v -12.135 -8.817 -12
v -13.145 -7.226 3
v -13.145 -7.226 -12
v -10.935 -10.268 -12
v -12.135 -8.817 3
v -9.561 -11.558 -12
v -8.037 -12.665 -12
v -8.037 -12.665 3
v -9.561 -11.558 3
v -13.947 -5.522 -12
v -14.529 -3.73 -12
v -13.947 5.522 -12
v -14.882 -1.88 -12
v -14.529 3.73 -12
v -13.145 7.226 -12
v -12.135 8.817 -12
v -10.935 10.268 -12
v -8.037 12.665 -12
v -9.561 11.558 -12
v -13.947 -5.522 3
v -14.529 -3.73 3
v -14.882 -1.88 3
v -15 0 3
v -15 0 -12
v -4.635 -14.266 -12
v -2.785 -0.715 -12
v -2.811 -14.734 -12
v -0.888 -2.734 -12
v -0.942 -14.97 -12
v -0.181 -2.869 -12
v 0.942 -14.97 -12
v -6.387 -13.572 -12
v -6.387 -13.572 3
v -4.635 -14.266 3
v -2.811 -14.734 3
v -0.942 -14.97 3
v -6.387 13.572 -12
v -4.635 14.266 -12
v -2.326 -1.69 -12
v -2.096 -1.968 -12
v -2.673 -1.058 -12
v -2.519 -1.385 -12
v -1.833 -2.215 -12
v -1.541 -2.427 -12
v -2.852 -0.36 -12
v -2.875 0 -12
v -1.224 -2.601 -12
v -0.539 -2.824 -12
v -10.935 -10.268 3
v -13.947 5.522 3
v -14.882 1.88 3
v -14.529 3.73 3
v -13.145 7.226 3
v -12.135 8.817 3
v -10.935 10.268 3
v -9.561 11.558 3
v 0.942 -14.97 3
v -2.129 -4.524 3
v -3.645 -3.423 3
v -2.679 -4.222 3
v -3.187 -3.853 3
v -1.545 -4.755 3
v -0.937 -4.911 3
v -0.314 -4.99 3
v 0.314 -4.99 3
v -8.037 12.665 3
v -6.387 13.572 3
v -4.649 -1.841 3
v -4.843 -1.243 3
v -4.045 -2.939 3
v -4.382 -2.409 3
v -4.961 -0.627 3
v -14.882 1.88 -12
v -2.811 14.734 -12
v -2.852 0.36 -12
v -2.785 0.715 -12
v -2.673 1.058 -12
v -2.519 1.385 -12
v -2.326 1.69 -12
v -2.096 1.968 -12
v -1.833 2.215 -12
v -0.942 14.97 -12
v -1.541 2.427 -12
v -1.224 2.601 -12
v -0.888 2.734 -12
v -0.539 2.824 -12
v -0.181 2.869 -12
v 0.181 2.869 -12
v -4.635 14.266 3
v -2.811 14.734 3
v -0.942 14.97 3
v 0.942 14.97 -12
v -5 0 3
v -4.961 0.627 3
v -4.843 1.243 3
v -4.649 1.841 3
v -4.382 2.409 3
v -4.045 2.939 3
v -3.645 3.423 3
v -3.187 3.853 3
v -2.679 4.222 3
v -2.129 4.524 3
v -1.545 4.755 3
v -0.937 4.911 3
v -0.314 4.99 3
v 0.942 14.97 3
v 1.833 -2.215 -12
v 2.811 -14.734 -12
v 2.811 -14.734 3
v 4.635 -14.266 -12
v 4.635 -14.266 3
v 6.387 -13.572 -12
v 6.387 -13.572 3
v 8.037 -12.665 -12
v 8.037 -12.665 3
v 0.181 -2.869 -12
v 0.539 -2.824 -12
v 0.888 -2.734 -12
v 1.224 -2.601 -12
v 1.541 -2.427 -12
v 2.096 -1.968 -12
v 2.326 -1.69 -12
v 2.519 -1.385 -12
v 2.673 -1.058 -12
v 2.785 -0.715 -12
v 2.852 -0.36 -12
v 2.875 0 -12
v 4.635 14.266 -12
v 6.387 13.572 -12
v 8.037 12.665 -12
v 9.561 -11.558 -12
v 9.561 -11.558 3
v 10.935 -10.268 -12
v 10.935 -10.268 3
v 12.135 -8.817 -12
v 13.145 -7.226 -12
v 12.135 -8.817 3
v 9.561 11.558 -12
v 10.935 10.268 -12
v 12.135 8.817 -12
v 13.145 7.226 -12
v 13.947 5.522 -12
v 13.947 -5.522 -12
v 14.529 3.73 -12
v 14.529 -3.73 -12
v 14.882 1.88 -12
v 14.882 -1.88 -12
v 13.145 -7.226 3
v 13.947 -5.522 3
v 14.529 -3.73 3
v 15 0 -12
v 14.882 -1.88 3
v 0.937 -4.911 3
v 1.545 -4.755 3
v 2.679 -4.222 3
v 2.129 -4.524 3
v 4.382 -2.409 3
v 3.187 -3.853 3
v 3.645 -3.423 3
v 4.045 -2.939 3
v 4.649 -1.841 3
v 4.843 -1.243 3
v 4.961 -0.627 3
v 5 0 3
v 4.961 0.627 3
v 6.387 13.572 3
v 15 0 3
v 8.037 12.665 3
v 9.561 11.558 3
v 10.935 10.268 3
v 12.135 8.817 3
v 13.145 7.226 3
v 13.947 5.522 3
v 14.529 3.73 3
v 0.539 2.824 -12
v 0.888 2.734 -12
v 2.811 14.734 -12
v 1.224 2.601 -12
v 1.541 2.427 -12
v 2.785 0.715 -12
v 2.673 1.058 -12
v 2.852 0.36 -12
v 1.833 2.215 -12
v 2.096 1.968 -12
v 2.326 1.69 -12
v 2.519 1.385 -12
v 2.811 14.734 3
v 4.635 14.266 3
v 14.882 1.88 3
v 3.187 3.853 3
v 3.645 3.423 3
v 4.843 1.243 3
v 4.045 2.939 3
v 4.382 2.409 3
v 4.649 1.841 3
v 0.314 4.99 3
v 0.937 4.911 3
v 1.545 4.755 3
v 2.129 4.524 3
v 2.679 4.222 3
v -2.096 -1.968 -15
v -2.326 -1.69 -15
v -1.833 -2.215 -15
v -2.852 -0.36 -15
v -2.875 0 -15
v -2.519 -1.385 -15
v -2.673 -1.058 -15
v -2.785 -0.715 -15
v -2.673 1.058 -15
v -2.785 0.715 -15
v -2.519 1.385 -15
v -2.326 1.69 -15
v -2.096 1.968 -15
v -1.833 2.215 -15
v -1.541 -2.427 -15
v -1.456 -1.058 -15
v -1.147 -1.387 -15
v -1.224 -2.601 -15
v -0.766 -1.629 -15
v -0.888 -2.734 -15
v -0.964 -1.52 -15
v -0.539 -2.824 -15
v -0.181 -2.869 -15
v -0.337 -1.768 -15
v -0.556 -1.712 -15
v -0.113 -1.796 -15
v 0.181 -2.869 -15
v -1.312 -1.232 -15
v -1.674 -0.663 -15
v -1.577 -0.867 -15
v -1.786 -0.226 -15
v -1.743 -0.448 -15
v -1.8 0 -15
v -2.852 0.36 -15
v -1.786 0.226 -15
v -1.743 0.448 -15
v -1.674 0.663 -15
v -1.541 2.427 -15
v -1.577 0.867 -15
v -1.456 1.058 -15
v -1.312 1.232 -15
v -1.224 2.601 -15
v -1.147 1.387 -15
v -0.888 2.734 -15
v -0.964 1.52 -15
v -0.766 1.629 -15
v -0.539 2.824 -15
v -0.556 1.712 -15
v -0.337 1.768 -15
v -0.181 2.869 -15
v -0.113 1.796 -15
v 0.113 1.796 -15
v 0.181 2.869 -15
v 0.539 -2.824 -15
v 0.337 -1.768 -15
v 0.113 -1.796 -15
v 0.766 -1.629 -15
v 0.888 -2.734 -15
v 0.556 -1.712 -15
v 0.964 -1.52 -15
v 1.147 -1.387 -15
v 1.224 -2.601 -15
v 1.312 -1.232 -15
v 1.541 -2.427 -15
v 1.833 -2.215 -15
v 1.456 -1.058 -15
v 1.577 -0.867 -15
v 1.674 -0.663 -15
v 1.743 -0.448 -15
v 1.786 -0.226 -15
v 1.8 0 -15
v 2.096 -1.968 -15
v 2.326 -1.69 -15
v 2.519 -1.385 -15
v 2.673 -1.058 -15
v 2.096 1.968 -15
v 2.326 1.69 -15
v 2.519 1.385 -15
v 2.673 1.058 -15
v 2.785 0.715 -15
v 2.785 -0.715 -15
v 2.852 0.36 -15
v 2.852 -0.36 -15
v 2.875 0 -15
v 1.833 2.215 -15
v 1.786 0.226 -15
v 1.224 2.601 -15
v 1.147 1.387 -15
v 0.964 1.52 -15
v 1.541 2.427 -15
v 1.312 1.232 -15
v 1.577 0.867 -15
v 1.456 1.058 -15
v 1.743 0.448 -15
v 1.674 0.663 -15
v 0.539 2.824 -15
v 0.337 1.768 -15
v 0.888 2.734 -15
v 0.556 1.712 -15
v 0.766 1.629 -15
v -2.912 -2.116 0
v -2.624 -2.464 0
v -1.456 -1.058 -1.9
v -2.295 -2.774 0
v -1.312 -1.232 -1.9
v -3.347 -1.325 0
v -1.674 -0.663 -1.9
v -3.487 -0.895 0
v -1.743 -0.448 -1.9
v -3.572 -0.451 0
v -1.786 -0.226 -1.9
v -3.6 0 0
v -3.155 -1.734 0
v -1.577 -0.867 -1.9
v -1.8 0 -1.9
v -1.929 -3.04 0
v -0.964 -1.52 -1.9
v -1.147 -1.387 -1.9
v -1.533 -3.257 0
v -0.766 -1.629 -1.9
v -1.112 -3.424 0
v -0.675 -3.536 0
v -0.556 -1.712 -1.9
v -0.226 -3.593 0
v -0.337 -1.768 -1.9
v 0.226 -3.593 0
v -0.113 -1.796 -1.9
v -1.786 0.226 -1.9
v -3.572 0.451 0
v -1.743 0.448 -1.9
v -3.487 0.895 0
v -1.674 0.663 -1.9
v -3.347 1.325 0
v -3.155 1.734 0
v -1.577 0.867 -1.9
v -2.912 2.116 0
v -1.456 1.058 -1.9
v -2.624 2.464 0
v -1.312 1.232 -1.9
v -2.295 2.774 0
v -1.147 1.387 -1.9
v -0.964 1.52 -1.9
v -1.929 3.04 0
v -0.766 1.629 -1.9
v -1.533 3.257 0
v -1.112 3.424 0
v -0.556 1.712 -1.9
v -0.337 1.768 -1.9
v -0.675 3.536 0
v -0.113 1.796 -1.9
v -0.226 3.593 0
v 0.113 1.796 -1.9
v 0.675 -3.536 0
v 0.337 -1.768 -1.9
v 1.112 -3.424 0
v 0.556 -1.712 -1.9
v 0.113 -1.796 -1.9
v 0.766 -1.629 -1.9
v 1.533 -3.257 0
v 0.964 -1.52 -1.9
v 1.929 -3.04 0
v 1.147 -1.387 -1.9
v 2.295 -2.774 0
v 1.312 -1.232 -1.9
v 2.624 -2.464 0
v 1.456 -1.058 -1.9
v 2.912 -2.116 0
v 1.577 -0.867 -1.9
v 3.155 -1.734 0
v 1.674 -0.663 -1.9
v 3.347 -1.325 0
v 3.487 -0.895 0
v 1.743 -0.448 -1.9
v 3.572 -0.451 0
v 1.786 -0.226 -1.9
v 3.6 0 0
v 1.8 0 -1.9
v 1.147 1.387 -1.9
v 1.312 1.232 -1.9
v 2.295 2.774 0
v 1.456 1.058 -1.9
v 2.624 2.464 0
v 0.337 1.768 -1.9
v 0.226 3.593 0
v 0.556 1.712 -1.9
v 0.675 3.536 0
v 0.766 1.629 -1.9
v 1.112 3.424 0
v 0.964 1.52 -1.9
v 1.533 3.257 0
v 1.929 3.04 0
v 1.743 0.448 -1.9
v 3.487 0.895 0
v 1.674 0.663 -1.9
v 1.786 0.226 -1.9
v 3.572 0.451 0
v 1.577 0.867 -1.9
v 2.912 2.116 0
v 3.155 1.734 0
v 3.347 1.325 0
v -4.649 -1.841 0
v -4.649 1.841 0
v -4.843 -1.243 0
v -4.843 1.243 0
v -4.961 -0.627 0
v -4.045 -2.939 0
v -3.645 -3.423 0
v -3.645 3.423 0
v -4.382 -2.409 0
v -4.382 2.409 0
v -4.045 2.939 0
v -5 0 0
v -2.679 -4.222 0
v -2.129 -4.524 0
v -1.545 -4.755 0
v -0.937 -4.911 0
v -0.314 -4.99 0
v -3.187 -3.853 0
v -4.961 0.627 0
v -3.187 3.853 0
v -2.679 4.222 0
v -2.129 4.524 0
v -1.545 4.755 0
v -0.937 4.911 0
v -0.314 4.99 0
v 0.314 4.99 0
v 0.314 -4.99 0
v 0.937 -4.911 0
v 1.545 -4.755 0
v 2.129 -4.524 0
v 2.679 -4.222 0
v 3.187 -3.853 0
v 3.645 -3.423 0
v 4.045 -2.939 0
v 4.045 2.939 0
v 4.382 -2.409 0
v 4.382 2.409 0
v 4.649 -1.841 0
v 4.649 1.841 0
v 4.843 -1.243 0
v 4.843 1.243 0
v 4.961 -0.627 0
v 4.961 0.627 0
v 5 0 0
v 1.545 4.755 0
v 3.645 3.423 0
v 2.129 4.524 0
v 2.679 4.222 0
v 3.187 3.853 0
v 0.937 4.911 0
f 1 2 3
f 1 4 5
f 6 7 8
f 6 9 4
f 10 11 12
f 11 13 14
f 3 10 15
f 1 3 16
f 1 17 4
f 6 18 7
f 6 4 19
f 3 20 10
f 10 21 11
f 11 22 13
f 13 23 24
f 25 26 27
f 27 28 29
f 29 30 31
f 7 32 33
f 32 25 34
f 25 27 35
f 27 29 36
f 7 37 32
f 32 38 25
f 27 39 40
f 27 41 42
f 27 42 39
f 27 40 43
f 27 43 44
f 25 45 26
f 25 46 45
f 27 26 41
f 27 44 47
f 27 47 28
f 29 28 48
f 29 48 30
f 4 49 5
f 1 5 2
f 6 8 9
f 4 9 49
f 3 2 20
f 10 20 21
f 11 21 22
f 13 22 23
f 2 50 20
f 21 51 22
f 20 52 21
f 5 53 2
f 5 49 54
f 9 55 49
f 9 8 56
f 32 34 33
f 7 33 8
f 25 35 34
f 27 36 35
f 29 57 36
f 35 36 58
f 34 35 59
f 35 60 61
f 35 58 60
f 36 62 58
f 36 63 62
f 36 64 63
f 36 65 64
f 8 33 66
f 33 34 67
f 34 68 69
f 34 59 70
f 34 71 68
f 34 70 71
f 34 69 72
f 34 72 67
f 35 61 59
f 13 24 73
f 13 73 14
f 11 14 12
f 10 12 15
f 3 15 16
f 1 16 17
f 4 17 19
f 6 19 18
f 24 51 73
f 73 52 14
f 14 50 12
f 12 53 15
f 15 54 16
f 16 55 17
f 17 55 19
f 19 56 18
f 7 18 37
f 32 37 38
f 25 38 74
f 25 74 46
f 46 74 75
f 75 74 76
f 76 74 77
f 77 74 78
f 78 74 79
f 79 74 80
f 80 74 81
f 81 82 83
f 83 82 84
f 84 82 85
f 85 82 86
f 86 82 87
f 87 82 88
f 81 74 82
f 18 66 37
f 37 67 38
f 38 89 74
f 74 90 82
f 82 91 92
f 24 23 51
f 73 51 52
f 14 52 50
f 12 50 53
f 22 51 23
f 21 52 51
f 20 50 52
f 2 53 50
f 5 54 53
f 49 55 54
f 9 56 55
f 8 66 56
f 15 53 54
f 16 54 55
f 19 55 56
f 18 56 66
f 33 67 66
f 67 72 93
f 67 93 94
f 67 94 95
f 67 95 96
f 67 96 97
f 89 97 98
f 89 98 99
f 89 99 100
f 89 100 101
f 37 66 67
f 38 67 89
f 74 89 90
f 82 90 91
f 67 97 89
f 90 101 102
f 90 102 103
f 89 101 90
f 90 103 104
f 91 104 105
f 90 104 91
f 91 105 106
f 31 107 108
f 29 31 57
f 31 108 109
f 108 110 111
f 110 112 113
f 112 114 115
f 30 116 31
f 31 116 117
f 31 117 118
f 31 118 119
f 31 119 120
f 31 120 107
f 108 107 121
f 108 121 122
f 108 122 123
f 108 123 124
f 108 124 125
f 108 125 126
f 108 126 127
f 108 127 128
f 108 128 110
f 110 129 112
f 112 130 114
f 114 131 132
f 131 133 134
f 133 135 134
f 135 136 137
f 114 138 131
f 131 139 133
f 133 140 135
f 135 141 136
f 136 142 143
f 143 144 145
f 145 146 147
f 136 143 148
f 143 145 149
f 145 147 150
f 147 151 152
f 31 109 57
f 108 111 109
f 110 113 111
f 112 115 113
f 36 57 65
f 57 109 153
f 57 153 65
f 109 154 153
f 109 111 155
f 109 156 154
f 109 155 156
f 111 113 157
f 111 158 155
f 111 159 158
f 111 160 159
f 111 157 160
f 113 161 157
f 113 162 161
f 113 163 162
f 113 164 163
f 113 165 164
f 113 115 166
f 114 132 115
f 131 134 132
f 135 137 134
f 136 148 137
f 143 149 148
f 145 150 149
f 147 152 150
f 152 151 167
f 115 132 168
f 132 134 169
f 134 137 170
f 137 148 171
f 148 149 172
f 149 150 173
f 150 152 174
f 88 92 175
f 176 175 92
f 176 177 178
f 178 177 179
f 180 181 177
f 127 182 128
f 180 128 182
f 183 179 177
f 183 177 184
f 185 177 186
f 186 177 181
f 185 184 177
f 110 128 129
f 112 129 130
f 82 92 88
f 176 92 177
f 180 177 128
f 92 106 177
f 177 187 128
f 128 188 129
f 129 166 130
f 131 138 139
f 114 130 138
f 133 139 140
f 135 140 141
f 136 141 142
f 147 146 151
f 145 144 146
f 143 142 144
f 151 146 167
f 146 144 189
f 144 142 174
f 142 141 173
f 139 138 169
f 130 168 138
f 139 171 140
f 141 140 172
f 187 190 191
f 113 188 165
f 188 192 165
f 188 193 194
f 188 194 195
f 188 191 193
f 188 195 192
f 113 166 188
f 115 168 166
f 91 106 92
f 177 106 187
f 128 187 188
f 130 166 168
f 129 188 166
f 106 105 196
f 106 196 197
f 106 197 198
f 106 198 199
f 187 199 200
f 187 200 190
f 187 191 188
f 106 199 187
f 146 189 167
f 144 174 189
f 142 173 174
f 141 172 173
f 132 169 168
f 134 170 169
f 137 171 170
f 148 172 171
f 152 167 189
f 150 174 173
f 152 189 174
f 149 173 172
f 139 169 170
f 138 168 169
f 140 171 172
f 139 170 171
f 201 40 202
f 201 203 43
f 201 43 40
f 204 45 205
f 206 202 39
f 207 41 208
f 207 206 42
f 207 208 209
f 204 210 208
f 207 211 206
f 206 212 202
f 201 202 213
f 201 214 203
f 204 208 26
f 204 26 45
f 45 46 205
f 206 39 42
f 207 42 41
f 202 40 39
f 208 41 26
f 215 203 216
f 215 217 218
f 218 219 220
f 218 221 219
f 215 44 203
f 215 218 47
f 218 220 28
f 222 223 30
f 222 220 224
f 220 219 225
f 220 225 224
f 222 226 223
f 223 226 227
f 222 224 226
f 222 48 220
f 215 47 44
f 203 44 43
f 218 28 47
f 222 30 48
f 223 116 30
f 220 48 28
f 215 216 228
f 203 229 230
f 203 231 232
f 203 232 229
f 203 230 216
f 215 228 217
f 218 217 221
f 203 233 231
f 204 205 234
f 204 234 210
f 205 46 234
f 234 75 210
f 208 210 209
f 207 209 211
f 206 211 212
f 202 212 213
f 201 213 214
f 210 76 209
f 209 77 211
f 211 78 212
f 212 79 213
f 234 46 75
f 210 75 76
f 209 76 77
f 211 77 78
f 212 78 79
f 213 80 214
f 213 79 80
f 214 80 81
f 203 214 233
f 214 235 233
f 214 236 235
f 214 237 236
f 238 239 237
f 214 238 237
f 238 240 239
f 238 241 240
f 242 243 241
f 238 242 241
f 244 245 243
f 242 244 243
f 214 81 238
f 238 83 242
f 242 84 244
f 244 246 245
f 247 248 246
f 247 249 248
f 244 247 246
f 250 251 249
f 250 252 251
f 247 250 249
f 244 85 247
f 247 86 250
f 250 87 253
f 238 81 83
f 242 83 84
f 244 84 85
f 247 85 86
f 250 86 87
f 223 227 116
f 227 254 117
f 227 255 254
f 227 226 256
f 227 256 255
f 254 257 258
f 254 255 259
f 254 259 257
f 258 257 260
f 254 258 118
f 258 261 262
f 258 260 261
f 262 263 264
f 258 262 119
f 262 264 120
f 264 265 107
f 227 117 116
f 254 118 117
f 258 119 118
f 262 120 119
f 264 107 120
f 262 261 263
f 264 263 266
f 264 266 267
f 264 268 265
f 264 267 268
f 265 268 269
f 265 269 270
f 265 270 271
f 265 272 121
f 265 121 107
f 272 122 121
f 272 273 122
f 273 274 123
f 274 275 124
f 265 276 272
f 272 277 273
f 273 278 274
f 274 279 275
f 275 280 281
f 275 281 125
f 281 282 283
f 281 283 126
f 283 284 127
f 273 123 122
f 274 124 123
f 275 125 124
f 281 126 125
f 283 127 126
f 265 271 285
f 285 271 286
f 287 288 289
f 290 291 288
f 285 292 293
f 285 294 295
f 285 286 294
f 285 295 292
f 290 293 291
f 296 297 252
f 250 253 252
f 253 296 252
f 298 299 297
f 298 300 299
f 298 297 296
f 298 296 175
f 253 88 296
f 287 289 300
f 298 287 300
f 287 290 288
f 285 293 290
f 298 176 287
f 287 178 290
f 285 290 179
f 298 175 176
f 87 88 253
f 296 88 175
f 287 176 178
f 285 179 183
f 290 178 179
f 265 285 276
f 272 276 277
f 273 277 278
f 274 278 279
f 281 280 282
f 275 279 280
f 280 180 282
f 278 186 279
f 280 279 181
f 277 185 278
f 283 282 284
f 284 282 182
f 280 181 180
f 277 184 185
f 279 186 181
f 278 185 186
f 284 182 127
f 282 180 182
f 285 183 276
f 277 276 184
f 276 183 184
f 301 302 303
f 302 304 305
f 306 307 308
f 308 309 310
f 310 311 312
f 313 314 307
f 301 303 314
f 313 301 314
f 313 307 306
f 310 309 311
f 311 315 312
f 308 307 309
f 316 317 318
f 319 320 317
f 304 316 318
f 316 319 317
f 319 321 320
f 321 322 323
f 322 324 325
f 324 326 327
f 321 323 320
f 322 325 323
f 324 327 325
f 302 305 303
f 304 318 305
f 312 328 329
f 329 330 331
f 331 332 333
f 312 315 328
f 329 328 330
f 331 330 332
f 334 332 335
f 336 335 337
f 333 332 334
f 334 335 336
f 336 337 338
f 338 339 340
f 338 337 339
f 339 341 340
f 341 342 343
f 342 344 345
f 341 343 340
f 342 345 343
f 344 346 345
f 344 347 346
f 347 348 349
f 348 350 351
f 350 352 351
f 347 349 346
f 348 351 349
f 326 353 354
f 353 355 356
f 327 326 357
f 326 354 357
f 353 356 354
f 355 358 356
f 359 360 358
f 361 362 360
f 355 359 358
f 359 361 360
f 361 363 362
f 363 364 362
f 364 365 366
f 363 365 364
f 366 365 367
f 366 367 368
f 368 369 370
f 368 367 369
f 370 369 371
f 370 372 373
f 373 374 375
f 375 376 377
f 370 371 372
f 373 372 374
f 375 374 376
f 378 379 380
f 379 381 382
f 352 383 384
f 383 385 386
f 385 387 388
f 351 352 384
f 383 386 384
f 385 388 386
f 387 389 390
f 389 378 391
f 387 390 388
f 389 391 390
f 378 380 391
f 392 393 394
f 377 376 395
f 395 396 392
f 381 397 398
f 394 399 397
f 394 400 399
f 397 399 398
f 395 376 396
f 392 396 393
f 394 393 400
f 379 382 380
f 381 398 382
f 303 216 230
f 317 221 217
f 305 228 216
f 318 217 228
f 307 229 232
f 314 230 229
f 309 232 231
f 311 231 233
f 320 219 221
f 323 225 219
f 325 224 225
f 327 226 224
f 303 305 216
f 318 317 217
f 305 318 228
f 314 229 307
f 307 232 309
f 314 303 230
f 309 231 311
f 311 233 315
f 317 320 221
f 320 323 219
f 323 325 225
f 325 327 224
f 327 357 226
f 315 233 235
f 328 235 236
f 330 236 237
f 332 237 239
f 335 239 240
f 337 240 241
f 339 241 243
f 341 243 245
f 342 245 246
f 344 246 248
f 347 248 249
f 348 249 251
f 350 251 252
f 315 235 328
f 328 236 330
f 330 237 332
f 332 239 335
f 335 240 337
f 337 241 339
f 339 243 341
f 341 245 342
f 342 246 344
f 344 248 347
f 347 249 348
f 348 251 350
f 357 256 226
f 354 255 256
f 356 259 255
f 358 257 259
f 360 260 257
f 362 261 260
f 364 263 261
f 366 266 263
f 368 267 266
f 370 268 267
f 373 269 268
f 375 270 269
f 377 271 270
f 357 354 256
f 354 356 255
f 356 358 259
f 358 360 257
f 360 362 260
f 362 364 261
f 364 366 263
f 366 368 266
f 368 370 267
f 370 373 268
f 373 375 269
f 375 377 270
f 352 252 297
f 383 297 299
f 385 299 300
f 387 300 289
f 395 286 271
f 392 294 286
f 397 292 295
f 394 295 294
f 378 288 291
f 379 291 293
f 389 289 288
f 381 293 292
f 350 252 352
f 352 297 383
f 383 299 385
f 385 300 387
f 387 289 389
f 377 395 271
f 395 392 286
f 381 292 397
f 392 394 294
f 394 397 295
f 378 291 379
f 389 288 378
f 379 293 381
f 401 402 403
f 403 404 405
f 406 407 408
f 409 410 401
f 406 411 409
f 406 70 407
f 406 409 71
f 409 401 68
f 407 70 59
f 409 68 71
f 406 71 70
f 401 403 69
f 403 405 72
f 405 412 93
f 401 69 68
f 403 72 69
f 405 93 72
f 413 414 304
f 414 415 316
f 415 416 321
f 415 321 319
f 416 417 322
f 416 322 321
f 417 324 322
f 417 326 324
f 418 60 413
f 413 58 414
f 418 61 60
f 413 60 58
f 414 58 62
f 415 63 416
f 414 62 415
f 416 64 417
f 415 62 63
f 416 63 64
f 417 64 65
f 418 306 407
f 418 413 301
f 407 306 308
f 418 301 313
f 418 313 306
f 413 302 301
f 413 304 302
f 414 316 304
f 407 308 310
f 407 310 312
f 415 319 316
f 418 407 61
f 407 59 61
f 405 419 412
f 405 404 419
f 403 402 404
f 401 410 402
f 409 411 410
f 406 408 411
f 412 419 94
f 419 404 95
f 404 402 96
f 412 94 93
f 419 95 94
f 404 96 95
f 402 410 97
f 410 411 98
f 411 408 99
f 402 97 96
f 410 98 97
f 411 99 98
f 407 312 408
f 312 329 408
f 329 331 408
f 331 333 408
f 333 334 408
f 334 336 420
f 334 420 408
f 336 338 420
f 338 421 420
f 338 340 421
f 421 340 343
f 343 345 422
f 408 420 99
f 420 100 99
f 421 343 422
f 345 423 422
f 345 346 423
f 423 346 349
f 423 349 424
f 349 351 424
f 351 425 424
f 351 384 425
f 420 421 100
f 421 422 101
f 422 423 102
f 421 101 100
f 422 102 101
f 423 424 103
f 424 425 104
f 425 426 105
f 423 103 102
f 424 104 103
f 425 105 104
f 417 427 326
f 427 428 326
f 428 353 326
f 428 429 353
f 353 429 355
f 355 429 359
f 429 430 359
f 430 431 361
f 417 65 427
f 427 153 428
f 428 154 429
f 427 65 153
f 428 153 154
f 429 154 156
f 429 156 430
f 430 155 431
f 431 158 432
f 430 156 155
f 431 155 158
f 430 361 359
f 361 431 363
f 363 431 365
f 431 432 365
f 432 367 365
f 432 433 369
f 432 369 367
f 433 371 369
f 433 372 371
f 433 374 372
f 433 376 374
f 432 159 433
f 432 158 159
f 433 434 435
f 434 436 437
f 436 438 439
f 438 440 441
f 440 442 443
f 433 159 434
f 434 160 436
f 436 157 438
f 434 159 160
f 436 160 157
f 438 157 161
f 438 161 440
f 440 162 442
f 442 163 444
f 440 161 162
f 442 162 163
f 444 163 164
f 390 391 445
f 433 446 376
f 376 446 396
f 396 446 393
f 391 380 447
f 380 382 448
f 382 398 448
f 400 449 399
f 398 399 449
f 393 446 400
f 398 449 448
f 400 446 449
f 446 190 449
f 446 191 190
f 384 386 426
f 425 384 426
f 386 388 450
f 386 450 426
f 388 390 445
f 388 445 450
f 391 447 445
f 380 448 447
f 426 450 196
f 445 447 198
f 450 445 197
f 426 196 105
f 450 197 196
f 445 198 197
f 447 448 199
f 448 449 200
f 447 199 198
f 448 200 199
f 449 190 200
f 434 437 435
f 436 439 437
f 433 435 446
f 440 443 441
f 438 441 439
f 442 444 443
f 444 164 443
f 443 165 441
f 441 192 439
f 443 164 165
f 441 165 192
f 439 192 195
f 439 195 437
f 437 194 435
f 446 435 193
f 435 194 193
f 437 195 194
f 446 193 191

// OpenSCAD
$fn = 50;


difference() {
	union() {
		translate(v = [0, 0, -12.0000000000]) {
			cylinder(h = 15, r = 15.0000000000);
		}
		#translate(v = [0, 0, -15.0000000000]) {
			cylinder(h = 15, r = 2.8750000000);
		}
	}
	union() {
		translate(v = [0, 0, 0]) {
			rotate(a = [0, 0, 0]) {
				difference() {
					union() {
						translate(v = [0, 0, -15.0000000000]) {
							cylinder(h = 15, r = 1.5000000000);
						}
						translate(v = [0, 0, -1.9000000000]) {
							cylinder(h = 1.9000000000, r1 = 1.8000000000, r2 = 3.6000000000);
						}
						translate(v = [0, 0, -15.0000000000]) {
							cylinder(h = 15, r = 1.8000000000);
						}
						translate(v = [0, 0, -15.0000000000]) {
							cylinder(h = 15, r = 1.5000000000);
						}
					}
					union();
				}
			}
		}
		#cylinder(h = 3, r = 5.0000000000);
	}
}
